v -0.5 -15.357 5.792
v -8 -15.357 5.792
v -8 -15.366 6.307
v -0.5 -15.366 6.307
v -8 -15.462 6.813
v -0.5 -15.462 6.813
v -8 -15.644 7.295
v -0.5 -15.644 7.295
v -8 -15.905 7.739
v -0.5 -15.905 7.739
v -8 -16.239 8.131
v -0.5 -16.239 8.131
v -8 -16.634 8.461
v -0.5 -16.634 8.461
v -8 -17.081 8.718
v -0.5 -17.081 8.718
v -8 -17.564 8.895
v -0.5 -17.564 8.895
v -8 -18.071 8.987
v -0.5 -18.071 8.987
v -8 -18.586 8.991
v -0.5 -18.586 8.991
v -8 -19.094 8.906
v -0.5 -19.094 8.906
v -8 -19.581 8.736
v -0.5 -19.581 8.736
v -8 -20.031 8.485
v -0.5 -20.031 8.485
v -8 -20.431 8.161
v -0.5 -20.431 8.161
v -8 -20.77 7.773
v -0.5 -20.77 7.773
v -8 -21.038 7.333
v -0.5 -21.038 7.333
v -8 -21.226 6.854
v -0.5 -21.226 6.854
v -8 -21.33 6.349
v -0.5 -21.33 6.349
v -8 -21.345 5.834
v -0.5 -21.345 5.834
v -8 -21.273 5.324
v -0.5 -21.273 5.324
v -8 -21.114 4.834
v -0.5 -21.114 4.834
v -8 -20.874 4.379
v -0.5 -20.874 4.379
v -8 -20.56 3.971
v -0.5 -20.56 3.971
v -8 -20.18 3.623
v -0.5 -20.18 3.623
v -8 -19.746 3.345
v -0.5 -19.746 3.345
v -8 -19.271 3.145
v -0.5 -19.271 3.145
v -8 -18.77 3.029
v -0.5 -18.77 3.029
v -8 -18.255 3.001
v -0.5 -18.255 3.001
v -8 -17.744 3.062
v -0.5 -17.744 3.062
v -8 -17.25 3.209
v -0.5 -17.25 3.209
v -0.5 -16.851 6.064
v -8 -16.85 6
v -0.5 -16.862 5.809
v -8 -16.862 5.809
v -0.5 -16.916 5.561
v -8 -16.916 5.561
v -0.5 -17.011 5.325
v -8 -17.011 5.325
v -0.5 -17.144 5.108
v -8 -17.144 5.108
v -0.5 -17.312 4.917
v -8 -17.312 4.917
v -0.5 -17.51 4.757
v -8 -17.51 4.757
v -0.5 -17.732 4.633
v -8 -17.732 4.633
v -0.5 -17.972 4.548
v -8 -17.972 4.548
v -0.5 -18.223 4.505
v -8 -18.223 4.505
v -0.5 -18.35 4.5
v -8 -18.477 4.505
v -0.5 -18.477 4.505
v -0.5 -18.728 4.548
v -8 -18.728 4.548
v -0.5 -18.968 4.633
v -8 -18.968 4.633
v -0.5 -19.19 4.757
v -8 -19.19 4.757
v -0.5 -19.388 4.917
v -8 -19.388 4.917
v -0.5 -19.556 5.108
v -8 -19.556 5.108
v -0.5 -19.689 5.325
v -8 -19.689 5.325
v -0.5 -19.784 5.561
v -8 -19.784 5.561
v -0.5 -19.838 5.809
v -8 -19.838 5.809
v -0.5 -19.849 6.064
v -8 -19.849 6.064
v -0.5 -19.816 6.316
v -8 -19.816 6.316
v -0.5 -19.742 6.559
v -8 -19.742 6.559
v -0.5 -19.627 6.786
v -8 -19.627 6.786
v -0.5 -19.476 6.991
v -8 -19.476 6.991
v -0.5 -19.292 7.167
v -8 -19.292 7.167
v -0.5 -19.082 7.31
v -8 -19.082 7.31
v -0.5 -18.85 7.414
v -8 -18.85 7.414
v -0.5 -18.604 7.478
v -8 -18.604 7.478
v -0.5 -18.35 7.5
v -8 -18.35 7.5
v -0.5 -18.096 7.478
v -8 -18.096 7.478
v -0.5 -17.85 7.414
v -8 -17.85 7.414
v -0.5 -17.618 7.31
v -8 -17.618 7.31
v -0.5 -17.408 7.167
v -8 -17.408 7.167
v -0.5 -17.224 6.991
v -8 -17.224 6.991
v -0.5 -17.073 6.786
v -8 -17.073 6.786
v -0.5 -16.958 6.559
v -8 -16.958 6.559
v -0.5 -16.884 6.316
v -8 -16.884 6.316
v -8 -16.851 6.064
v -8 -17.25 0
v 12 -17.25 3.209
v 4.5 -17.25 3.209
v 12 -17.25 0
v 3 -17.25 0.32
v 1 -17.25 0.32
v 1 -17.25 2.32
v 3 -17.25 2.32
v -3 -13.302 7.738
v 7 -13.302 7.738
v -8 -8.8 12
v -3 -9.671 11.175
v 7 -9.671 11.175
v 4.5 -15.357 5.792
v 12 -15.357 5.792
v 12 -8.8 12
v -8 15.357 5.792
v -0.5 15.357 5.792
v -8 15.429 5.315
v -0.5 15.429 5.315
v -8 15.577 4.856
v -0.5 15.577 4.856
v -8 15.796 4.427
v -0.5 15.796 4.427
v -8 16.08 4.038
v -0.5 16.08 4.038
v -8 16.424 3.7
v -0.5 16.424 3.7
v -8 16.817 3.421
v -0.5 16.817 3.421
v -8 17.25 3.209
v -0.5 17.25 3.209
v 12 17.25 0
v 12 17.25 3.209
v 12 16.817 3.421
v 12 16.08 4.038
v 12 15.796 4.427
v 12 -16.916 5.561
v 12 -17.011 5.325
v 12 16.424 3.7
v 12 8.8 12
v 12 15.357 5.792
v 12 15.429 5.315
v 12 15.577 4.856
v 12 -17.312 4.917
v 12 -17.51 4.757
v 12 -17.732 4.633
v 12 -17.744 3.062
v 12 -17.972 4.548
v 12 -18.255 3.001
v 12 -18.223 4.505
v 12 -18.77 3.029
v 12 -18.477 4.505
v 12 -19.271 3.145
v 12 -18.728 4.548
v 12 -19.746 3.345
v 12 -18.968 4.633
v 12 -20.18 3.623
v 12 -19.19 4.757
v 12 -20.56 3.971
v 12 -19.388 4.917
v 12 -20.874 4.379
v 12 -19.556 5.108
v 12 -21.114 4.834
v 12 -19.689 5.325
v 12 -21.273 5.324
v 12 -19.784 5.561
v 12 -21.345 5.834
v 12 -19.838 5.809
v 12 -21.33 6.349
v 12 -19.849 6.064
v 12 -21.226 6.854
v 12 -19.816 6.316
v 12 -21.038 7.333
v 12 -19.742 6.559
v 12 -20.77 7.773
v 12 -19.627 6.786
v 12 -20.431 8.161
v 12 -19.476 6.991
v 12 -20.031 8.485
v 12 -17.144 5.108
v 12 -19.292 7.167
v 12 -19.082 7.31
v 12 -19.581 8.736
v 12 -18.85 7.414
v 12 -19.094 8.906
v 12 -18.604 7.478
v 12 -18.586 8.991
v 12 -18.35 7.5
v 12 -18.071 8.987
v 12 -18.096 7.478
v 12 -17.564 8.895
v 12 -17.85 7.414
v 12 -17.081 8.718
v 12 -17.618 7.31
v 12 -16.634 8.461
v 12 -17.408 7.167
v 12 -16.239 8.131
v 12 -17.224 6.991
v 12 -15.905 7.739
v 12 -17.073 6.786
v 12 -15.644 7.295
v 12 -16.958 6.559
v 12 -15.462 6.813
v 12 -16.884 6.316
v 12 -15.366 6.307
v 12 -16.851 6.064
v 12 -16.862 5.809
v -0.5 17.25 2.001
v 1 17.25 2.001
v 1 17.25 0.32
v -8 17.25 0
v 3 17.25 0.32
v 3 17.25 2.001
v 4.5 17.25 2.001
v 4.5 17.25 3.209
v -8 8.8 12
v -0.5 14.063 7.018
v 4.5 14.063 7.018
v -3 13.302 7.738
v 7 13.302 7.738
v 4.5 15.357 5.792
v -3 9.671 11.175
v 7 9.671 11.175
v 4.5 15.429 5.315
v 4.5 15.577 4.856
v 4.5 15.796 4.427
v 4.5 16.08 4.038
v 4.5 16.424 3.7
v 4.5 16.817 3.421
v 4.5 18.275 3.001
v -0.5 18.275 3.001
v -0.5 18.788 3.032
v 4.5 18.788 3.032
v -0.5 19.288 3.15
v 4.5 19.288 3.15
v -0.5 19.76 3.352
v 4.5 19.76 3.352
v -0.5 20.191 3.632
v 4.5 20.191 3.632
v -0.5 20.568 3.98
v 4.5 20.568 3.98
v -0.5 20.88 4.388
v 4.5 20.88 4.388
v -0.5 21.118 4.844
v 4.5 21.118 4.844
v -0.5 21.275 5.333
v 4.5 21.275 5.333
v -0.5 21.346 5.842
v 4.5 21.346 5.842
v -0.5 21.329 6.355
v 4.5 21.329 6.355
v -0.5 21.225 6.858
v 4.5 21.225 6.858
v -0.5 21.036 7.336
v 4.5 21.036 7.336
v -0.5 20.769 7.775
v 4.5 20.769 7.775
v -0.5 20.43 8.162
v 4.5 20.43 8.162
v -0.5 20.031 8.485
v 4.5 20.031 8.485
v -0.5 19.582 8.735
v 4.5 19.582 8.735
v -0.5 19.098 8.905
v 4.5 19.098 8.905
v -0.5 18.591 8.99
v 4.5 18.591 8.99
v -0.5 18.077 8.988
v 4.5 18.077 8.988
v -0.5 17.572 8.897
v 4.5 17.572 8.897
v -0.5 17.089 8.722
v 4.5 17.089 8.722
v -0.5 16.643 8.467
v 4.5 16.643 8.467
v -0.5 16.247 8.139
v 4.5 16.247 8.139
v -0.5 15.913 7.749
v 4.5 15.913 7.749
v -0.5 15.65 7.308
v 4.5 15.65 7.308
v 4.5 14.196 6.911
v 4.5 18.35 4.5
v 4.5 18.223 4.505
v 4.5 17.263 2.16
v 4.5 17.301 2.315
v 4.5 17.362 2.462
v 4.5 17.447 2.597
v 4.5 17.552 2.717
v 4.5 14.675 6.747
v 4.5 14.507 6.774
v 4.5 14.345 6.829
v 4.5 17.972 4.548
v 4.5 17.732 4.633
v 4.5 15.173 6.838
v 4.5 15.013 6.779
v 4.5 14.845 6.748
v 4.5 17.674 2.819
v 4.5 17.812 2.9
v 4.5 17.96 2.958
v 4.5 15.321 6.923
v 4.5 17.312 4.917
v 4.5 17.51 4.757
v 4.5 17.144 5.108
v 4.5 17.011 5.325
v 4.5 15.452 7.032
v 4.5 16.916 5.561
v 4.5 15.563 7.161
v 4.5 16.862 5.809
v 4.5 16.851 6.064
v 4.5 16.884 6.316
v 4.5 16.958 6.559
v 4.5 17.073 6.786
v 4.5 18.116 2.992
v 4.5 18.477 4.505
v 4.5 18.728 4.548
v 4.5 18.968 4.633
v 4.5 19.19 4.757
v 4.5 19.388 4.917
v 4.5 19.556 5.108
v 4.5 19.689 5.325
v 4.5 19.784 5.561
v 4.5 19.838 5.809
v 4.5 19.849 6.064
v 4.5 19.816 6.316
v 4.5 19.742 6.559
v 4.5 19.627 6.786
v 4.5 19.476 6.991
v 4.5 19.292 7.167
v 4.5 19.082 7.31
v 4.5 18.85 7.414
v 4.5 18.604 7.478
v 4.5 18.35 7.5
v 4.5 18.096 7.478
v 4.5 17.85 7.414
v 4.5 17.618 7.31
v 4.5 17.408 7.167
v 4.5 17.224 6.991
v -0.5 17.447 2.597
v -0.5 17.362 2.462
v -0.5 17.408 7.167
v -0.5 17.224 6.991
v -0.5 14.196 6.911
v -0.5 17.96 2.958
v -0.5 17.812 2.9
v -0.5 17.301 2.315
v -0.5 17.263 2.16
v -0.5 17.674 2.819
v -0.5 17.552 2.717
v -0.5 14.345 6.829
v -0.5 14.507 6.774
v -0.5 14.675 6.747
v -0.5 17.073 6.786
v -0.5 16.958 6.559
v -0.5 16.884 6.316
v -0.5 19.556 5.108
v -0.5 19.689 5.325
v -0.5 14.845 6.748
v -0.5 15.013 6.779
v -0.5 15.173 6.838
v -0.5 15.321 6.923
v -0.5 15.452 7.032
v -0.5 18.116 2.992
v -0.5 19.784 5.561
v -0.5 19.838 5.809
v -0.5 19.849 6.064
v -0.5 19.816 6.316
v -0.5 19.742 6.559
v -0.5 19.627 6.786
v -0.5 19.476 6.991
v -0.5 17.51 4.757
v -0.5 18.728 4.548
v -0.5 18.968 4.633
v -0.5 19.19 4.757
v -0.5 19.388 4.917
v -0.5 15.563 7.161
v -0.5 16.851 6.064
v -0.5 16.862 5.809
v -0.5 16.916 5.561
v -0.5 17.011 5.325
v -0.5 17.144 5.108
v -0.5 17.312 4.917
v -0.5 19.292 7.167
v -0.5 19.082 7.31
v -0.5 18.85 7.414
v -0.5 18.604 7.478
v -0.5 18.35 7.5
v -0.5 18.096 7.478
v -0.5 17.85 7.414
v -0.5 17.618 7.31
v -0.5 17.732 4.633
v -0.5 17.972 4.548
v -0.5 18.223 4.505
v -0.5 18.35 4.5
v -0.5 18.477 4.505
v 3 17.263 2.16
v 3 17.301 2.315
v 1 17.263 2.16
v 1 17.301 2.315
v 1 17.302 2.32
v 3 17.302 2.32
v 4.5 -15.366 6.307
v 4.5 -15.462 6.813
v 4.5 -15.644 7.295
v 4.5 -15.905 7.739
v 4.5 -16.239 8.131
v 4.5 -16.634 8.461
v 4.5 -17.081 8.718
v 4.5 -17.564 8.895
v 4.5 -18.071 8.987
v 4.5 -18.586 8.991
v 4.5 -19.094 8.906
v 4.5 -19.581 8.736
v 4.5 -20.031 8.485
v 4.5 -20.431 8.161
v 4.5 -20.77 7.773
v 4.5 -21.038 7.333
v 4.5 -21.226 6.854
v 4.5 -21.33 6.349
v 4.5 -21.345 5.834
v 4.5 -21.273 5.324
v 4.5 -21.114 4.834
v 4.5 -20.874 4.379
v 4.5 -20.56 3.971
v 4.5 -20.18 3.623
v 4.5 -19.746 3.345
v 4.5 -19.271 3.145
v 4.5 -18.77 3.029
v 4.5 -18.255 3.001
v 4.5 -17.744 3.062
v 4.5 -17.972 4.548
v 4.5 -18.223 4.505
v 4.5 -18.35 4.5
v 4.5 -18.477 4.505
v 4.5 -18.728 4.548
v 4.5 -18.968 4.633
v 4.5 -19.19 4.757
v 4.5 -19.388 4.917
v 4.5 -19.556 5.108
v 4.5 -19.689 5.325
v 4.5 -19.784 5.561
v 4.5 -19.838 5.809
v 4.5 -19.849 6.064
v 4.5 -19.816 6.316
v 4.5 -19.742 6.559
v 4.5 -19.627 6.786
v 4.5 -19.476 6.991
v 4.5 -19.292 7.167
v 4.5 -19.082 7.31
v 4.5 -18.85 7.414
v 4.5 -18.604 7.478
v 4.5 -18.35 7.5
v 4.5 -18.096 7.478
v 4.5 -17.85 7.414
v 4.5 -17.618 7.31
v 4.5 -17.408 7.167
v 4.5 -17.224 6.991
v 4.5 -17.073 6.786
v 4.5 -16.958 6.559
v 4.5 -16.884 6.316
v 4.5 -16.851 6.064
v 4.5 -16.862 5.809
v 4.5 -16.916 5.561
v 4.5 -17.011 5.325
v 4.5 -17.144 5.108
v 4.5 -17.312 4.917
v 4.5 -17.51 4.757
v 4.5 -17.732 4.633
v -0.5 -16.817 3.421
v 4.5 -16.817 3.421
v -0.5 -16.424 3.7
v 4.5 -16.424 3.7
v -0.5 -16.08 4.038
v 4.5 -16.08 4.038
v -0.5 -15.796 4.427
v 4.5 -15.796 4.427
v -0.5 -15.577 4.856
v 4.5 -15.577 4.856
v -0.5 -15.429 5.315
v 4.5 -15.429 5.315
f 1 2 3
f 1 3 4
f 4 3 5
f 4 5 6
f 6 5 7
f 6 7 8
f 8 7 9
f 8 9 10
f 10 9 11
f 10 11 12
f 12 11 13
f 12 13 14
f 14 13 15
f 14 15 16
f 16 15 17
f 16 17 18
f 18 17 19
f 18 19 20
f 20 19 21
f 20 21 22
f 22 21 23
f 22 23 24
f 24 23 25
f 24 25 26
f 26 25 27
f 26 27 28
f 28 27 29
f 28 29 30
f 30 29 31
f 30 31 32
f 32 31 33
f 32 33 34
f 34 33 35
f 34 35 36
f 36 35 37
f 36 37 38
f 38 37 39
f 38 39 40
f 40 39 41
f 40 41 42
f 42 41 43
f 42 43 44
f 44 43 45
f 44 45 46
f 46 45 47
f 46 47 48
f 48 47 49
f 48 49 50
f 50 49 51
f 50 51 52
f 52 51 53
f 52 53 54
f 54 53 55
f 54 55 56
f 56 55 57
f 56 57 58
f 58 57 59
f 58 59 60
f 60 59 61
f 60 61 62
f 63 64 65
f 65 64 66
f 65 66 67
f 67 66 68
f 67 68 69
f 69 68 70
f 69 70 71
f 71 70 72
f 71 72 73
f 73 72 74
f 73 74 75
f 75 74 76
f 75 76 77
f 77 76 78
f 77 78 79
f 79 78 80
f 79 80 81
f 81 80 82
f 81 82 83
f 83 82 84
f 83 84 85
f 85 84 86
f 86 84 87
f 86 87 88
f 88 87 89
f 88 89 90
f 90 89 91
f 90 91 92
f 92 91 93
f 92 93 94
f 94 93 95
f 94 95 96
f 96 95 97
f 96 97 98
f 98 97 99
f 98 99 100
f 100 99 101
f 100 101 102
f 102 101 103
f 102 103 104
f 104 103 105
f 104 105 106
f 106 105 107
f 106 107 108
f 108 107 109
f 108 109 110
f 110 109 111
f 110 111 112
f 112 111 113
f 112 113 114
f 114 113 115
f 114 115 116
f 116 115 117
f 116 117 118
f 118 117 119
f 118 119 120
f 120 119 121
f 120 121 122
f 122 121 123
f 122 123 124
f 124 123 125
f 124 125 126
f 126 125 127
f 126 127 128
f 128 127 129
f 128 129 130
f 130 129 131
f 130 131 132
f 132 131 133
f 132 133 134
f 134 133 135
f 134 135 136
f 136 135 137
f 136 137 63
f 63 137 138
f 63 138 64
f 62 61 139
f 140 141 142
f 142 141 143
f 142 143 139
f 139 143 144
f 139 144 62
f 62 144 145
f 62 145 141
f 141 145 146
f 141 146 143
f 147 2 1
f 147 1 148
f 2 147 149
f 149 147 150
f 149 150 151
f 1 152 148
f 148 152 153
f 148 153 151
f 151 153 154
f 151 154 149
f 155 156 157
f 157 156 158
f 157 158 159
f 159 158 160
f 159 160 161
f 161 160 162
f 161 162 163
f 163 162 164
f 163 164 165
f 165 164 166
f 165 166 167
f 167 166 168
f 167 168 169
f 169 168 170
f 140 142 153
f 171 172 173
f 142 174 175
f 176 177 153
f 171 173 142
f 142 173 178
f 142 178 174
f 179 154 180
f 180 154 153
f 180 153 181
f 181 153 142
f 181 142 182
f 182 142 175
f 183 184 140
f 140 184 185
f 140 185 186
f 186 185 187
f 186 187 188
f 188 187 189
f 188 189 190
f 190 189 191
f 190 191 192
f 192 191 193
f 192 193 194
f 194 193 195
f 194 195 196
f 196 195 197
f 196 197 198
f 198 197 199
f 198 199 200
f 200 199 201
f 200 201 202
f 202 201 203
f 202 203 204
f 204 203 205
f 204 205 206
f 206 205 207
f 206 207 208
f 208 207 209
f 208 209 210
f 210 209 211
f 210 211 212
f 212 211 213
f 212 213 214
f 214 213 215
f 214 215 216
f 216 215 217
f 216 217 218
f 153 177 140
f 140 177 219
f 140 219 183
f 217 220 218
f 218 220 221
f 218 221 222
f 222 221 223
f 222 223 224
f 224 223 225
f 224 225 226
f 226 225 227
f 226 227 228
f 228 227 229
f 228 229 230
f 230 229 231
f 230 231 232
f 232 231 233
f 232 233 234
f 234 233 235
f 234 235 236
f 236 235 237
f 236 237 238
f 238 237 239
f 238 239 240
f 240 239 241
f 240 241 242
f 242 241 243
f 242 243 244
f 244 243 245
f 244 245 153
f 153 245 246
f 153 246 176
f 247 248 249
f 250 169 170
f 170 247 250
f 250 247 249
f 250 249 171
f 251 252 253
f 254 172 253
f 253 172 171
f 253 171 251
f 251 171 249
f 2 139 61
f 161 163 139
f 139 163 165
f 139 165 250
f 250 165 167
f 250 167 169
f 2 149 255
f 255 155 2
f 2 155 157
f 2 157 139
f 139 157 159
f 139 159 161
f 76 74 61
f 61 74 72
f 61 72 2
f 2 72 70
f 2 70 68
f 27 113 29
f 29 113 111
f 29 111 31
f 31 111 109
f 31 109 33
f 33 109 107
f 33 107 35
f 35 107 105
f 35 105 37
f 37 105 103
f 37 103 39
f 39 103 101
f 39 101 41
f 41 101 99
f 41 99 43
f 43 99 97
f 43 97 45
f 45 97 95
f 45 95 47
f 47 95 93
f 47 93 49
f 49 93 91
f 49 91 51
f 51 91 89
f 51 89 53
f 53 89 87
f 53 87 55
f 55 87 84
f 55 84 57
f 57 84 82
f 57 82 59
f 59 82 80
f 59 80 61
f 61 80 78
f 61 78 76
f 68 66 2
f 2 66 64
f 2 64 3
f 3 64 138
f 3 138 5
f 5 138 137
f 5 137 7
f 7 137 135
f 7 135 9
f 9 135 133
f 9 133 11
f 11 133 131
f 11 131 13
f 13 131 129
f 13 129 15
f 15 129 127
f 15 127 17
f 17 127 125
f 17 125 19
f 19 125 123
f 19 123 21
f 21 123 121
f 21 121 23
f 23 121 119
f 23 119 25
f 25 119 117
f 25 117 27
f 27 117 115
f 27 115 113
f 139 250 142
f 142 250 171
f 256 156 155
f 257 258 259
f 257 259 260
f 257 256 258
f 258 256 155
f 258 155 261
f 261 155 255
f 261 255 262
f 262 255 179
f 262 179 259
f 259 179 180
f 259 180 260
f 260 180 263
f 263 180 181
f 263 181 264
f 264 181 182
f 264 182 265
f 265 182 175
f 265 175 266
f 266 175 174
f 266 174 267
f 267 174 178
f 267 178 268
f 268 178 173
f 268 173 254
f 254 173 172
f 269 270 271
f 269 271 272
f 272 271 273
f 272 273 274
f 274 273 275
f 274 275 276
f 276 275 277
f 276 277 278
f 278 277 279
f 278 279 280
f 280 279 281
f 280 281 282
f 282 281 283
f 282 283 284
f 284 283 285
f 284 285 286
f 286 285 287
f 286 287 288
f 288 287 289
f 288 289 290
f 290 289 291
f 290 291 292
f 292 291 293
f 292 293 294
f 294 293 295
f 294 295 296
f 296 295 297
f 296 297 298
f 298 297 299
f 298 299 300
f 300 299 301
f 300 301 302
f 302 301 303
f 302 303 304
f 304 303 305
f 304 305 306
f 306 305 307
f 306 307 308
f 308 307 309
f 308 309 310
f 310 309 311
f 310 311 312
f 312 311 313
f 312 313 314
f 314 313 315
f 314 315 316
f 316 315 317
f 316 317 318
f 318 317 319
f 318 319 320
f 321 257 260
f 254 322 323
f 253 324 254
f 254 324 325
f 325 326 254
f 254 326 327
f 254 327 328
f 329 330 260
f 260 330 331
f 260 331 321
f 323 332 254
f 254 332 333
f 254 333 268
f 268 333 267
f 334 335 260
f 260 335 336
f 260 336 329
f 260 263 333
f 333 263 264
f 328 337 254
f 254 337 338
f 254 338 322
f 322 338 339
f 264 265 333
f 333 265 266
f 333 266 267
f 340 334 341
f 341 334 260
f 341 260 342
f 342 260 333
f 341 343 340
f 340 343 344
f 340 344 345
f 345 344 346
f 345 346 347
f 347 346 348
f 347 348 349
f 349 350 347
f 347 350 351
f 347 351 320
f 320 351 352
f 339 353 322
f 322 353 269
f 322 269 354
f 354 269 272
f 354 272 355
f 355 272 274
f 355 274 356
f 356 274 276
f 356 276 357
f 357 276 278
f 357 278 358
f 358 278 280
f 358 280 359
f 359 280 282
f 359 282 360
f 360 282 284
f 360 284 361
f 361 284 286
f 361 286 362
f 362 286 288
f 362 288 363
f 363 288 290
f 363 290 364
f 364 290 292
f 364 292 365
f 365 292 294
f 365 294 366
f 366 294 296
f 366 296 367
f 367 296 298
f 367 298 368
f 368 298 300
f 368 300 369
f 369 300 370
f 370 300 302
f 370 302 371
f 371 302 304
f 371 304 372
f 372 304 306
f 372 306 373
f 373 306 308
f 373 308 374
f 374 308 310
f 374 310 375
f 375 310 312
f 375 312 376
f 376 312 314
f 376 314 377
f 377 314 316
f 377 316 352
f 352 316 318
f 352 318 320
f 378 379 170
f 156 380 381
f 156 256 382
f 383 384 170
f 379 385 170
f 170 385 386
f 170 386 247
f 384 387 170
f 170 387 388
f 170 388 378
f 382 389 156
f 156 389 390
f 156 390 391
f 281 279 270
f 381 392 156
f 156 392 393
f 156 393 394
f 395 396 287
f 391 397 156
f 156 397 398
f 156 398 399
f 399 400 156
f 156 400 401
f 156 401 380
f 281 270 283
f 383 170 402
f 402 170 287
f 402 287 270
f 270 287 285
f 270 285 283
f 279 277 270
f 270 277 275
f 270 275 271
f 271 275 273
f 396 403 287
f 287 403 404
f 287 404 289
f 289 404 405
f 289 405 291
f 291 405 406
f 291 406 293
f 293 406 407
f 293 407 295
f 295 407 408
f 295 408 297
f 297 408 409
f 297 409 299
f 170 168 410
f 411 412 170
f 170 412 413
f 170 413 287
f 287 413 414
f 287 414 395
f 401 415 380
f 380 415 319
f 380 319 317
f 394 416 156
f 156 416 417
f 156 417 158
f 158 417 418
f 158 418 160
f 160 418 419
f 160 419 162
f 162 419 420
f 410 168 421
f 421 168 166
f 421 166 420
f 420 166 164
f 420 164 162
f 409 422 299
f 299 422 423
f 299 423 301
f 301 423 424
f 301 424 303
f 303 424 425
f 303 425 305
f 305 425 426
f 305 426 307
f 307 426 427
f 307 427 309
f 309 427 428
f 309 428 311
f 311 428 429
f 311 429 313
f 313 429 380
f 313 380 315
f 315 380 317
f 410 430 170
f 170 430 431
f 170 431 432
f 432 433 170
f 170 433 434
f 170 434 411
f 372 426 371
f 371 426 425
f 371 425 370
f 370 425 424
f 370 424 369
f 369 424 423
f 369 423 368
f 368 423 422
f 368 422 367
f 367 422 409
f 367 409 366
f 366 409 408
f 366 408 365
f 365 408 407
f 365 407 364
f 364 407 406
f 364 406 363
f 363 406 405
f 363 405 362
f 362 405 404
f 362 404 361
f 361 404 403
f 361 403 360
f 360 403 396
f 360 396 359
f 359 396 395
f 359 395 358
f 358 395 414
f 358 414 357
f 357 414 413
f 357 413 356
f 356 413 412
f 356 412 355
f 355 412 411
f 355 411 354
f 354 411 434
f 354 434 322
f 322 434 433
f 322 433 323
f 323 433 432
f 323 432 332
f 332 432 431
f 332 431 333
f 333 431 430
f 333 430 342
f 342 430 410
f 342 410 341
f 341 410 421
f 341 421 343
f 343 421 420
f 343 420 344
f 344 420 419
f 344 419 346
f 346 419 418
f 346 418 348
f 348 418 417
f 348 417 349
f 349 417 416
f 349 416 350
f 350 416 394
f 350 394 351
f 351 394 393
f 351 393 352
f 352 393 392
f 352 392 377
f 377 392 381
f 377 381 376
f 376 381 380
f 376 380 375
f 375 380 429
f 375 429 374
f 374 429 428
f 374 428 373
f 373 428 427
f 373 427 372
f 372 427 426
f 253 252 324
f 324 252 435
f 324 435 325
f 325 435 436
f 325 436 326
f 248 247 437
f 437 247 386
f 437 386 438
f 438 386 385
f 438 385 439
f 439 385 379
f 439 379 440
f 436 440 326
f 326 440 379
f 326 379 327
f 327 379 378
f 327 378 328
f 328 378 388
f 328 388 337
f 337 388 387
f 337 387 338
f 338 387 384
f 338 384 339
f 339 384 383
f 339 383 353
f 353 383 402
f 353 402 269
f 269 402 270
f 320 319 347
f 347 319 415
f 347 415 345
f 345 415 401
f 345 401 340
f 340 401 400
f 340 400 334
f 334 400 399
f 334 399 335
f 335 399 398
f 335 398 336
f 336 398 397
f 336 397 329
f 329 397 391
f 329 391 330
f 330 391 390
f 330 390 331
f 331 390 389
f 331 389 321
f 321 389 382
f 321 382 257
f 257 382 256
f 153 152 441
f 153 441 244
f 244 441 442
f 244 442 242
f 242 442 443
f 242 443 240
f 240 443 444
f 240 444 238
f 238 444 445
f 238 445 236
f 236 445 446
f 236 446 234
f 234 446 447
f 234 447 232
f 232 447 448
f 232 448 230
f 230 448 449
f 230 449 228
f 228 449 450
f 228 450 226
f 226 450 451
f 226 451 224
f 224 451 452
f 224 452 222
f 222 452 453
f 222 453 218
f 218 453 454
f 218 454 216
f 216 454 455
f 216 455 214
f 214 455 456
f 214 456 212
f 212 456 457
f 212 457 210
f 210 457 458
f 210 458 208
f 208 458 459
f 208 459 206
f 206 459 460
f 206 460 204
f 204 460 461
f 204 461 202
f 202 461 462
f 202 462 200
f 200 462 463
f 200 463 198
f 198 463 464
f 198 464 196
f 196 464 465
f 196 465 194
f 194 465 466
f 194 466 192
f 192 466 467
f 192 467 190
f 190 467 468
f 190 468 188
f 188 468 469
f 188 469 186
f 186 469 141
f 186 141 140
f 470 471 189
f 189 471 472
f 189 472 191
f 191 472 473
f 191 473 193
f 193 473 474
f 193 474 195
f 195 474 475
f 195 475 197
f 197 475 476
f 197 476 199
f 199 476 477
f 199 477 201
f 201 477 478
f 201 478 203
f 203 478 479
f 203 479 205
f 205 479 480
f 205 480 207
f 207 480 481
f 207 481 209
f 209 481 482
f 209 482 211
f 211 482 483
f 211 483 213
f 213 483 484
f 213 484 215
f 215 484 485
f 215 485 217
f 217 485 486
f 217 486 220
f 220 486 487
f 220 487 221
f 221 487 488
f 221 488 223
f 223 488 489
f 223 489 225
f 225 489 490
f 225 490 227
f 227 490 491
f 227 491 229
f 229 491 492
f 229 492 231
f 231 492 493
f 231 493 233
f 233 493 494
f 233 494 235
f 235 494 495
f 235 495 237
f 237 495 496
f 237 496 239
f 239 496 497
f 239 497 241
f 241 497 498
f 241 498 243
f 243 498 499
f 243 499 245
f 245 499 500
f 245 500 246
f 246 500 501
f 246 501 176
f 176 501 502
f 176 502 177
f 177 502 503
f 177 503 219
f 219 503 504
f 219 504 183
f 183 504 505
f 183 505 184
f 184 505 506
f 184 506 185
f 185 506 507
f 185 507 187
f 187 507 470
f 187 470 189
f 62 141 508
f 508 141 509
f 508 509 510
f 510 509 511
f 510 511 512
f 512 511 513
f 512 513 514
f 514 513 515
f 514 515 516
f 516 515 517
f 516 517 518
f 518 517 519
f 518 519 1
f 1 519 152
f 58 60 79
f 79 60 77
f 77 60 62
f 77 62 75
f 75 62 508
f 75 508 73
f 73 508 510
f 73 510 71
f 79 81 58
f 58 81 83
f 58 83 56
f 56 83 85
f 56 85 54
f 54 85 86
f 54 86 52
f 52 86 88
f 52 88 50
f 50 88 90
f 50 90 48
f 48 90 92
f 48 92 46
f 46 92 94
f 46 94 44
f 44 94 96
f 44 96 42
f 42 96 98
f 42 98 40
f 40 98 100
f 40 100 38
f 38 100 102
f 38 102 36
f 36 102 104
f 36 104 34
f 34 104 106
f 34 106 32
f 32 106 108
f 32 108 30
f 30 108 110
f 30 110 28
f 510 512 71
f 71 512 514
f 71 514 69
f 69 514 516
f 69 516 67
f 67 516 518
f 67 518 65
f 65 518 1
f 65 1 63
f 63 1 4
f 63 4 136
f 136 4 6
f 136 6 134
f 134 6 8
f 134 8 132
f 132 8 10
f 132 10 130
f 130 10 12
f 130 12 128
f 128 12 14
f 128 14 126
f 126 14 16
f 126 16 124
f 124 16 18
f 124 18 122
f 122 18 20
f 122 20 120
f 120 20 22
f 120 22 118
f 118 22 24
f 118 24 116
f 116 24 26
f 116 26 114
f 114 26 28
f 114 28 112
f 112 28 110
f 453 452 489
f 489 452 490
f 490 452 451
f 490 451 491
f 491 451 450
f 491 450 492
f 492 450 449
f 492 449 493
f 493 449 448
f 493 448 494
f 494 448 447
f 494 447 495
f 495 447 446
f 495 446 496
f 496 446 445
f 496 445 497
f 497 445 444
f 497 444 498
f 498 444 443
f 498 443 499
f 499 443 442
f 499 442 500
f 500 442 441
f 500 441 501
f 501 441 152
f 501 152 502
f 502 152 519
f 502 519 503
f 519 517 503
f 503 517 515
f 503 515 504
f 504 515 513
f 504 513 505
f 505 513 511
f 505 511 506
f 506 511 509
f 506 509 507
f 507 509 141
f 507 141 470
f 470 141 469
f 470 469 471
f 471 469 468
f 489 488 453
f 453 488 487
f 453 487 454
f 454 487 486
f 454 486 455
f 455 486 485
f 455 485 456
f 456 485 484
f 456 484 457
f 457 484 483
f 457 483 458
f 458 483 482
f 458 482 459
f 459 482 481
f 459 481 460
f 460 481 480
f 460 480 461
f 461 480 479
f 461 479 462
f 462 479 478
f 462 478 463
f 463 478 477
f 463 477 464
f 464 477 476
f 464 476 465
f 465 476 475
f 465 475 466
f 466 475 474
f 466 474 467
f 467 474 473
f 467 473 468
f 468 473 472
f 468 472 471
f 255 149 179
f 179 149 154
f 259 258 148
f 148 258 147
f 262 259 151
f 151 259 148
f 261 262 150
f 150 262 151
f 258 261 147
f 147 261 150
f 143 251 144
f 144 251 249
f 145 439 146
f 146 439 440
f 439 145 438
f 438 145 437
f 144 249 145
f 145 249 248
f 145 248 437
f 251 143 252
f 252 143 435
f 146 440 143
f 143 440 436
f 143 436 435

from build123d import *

# Parameters (mm, degrees)
SKETCH2_W                       = 20
SKETCH2_H                       = 34.5
BOSS_EXTRUDE1_DEPTH             = 15
CUT_EXTRUDE1_DEPTH              = 25.951202376
CUT_EXTRUDE1_DEPTH_BACK         = 25.951202376
CUT_EXTRUDE2_DEPTH              = 25.951202376
CUT_EXTRUDE2_DEPTH_BACK         = 25.951202376
CUT_EXTRUDE4_DEPTH              = 25.951202376
CUT_EXTRUDE4_DEPTH_BACK         = 25.951202376
SKETCH10_R                      = 3
SKETCH12_R                      = 3
SKETCH12_R_2                    = 1.5
BOSS_EXTRUDE4_DEPTH             = 2.5
FILLET4_R                       = 1
BOSS_EXTRUDE5_REACH             = 29.943
SKETCH13_R                      = 3
SKETCH13_R_2                    = 1.5
BOSS_EXTRUDE5_DIRECTION_2_REACH = 29.943
SKETCH14_R                      = 3
CUT_EXTRUDE6_DEPTH              = 2.5
CUT_EXTRUDE7_DEPTH              = 28.94320132
CUT_EXTRUDE7_DEPTH_BACK         = 28.94320132
CUT_EXTRUDE8_REACH              = 29.273
SKETCH17_W                      = 10
SKETCH17_H                      = 3.4375
CUT_EXTRUDE8_DIRECTION_2_REACH  = 29.273
SKETCH18_W                      = 2
SKETCH18_H                      = 38.848747282
CUT_EXTRUDE9_DEPTH              = 1


with BuildPart() as part:
    # Sketch2 → Boss-Extrude1 (new body)
    with BuildSketch(Plane.XY):
        with Locations((2, 0)):
            Rectangle(SKETCH2_W, SKETCH2_H)
    extrude(amount=BOSS_EXTRUDE1_DEPTH)

    # Sketch6 → Cut-Extrude1 (cut, two sides: drawn at the far end of the back side and taken through both)
    with BuildSketch(Plane(origin=(2, 0, 0), x_dir=(0, 0, -1), z_dir=(1, 0, 0)).offset(-CUT_EXTRUDE1_DEPTH_BACK)):
        Polygon((-4, 17.25), (-15, 5.631049961), (-15, 17.25), align=None)
    extrude(amount=CUT_EXTRUDE1_DEPTH + CUT_EXTRUDE1_DEPTH_BACK, mode=Mode.SUBTRACT)

    # Sketch8 → Cut-Extrude2 (cut, two sides: drawn at the far end of the back side and taken through both)
    with BuildSketch(Plane(origin=(2, 0, 0), x_dir=(0, 0, -1), z_dir=(1, 0, 0)).offset(-CUT_EXTRUDE2_DEPTH_BACK)):
        Polygon((-4, -17.25), (-15, -5.631049961), (-15, -17.25), align=None)
    extrude(amount=CUT_EXTRUDE2_DEPTH + CUT_EXTRUDE2_DEPTH_BACK, mode=Mode.SUBTRACT)

    # Sketch10 → Cut-Extrude4 (cut, two sides: drawn at the far end of the back side and taken through both)
    with BuildSketch(Plane(origin=(2, 0, 0), x_dir=(0, 0, -1), z_dir=(1, 0, 0)).offset(-CUT_EXTRUDE4_DEPTH_BACK)):
        with Locations((-6, 18.35)):
            Circle(SKETCH10_R)
    extrude(amount=CUT_EXTRUDE4_DEPTH + CUT_EXTRUDE4_DEPTH_BACK, mode=Mode.SUBTRACT)

    # Sketch12 → Boss-Extrude4 (add, symmetric)
    with BuildSketch(Plane(origin=(2, 0, 0), x_dir=(0, 0, -1), z_dir=(1, 0, 0))):
        with Locations((-6, 18.35)):
            Circle(SKETCH12_R)
        with Locations((-6, 18.35)):
            Circle(SKETCH12_R_2, mode=Mode.SUBTRACT)
    extrude(amount=BOSS_EXTRUDE4_DEPTH, both=True)

    # Fillet4
    fillet4_edges = [part.edges().sort_by_distance(p)[0] for p in [
        (2, 15.357223012, 5.791947362),
        (2, 17.25, 3.208942853),
    ]]
    fillet(fillet4_edges, radius=FILLET4_R)

    # Boss-Extrude5: up to this face of the body (flat: up to its plane)
    boss_extrude5_end = Plane(part.part.faces().sort_by_distance((12, -0.0739089, 6.251251182))[0])
    # Sketch13 → Boss-Extrude5 (add, up to the picked face)
    with BuildSketch(Plane(origin=(2, 0, 0), x_dir=(0, 0, -1), z_dir=(1, 0, 0)), mode=Mode.PRIVATE) as boss_extrude5_sk1:
        with Locations((-6, -18.35)):
            Circle(SKETCH13_R)
        with Locations(Location((-6, -18.35, 0), (0, 0, 180))):
            Circle(SKETCH13_R_2, mode=Mode.SUBTRACT)
    boss_extrude5_tool1 = split(extrude(boss_extrude5_sk1.sketch, amount=BOSS_EXTRUDE5_REACH, mode=Mode.PRIVATE), bisect_by=boss_extrude5_end, keep=Keep.BOTH, mode=Mode.PRIVATE)
    add(boss_extrude5_tool1.solids().sort_by(Axis((2, -18.35, 8.915147), (1, 0, 0)))[0])

    # Boss-Extrude5 direction 2: up to this face of the body (flat: up to its plane)
    boss_extrude5_direction_2_end = Plane(part.part.faces().sort_by_distance((-8, -0.0739089, 6.251251182))[0])
    # Sketch13 → Boss-Extrude5 direction 2 (add, up to the picked face)
    with BuildSketch(Plane(origin=(2, 0, 0), x_dir=(0, 0, -1), z_dir=(1, 0, 0)), mode=Mode.PRIVATE) as boss_extrude5_direction_2_sk1:
        with Locations((-6, -18.35)):
            Circle(SKETCH13_R)
        with Locations(Location((-6, -18.35, 0), (0, 0, 180))):
            Circle(SKETCH13_R_2, mode=Mode.SUBTRACT)
    boss_extrude5_direction_2_tool1 = split(extrude(boss_extrude5_direction_2_sk1.sketch, amount=-BOSS_EXTRUDE5_DIRECTION_2_REACH, mode=Mode.PRIVATE), bisect_by=boss_extrude5_direction_2_end, keep=Keep.BOTH, mode=Mode.PRIVATE)
    add(boss_extrude5_direction_2_tool1.solids().sort_by(Axis((2, -18.35, 8.915147), (-1, 0, 0)))[0])

    # Sketch14 → Cut-Extrude6 (cut, symmetric)
    with BuildSketch(Plane(origin=(2, 0, 0), x_dir=(0, 0, -1), z_dir=(1, 0, 0))):
        with Locations((-6, -18.35)):
            Circle(SKETCH14_R)
    extrude(amount=CUT_EXTRUDE6_DEPTH, both=True, mode=Mode.SUBTRACT)

    # Sketch15 → Cut-Extrude7 (cut, two sides: drawn at the far end of the back side and taken through both)
    with BuildSketch(Plane(origin=(2, 0, 0), x_dir=(0, 0, -1), z_dir=(1, 0, 0)).offset(-CUT_EXTRUDE7_DEPTH_BACK)):
        Polygon((-16.548060764, -12.233536013), (-12, -12.233536013), (-12, 0), (-12, 8.799854517), (-16.548060764, 8.799854517), (-16.548060764, -7.042323617), align=None)
    extrude(amount=CUT_EXTRUDE7_DEPTH + CUT_EXTRUDE7_DEPTH_BACK, mode=Mode.SUBTRACT)

    # Cut-Extrude8: up to this plane
    cut_extrude8_end = Plane(origin=(-8, -17.25, 4), z_dir=(0, 0.6875, -0.7261843774138907))
    # Sketch17 → Cut-Extrude8 (cut, up to the surface)
    with BuildSketch(Plane(origin=(0, 0, 0), x_dir=(1, 0, 0), z_dir=(0, 1, 0)), mode=Mode.PRIVATE) as cut_extrude8_sk1:
        with Locations((2, -9.45625)):
            Rectangle(SKETCH17_W, SKETCH17_H)
    cut_extrude8_tool1 = split(extrude(cut_extrude8_sk1.sketch, amount=-CUT_EXTRUDE8_REACH, mode=Mode.PRIVATE), bisect_by=cut_extrude8_end, keep=Keep.BOTH, mode=Mode.PRIVATE)
    add(cut_extrude8_tool1.solids().sort_by_distance((2, 0, 9.45625))[0], mode=Mode.SUBTRACT)

    # Cut-Extrude8 direction 2: up to this plane
    cut_extrude8_direction_2_end = Plane(origin=(-8, 17.25, 4), z_dir=(0, 0.6875, 0.7261843774138907))
    # Sketch17 → Cut-Extrude8 direction 2 (cut, up to the surface)
    with BuildSketch(Plane(origin=(0, 0, 0), x_dir=(1, 0, 0), z_dir=(0, 1, 0)), mode=Mode.PRIVATE) as cut_extrude8_direction_2_sk1:
        with Locations((2, -9.45625)):
            Rectangle(SKETCH17_W, SKETCH17_H)
    cut_extrude8_direction_2_tool1 = split(extrude(cut_extrude8_direction_2_sk1.sketch, amount=CUT_EXTRUDE8_DIRECTION_2_REACH, mode=Mode.PRIVATE), bisect_by=cut_extrude8_direction_2_end, keep=Keep.BOTH, mode=Mode.PRIVATE)
    add(cut_extrude8_direction_2_tool1.solids().sort_by_distance((2, 0, 9.45625))[0], mode=Mode.SUBTRACT)

    # Sketch18 → Cut-Extrude9 (cut, symmetric)
    with BuildSketch(Plane(origin=(2, 0, 0), x_dir=(0, 0, -1), z_dir=(1, 0, 0))):
        with Locations((-1.32, 2.174373641)):
            Rectangle(SKETCH18_W, SKETCH18_H)
    extrude(amount=CUT_EXTRUDE9_DEPTH, both=True, mode=Mode.SUBTRACT)


solid = part.part
